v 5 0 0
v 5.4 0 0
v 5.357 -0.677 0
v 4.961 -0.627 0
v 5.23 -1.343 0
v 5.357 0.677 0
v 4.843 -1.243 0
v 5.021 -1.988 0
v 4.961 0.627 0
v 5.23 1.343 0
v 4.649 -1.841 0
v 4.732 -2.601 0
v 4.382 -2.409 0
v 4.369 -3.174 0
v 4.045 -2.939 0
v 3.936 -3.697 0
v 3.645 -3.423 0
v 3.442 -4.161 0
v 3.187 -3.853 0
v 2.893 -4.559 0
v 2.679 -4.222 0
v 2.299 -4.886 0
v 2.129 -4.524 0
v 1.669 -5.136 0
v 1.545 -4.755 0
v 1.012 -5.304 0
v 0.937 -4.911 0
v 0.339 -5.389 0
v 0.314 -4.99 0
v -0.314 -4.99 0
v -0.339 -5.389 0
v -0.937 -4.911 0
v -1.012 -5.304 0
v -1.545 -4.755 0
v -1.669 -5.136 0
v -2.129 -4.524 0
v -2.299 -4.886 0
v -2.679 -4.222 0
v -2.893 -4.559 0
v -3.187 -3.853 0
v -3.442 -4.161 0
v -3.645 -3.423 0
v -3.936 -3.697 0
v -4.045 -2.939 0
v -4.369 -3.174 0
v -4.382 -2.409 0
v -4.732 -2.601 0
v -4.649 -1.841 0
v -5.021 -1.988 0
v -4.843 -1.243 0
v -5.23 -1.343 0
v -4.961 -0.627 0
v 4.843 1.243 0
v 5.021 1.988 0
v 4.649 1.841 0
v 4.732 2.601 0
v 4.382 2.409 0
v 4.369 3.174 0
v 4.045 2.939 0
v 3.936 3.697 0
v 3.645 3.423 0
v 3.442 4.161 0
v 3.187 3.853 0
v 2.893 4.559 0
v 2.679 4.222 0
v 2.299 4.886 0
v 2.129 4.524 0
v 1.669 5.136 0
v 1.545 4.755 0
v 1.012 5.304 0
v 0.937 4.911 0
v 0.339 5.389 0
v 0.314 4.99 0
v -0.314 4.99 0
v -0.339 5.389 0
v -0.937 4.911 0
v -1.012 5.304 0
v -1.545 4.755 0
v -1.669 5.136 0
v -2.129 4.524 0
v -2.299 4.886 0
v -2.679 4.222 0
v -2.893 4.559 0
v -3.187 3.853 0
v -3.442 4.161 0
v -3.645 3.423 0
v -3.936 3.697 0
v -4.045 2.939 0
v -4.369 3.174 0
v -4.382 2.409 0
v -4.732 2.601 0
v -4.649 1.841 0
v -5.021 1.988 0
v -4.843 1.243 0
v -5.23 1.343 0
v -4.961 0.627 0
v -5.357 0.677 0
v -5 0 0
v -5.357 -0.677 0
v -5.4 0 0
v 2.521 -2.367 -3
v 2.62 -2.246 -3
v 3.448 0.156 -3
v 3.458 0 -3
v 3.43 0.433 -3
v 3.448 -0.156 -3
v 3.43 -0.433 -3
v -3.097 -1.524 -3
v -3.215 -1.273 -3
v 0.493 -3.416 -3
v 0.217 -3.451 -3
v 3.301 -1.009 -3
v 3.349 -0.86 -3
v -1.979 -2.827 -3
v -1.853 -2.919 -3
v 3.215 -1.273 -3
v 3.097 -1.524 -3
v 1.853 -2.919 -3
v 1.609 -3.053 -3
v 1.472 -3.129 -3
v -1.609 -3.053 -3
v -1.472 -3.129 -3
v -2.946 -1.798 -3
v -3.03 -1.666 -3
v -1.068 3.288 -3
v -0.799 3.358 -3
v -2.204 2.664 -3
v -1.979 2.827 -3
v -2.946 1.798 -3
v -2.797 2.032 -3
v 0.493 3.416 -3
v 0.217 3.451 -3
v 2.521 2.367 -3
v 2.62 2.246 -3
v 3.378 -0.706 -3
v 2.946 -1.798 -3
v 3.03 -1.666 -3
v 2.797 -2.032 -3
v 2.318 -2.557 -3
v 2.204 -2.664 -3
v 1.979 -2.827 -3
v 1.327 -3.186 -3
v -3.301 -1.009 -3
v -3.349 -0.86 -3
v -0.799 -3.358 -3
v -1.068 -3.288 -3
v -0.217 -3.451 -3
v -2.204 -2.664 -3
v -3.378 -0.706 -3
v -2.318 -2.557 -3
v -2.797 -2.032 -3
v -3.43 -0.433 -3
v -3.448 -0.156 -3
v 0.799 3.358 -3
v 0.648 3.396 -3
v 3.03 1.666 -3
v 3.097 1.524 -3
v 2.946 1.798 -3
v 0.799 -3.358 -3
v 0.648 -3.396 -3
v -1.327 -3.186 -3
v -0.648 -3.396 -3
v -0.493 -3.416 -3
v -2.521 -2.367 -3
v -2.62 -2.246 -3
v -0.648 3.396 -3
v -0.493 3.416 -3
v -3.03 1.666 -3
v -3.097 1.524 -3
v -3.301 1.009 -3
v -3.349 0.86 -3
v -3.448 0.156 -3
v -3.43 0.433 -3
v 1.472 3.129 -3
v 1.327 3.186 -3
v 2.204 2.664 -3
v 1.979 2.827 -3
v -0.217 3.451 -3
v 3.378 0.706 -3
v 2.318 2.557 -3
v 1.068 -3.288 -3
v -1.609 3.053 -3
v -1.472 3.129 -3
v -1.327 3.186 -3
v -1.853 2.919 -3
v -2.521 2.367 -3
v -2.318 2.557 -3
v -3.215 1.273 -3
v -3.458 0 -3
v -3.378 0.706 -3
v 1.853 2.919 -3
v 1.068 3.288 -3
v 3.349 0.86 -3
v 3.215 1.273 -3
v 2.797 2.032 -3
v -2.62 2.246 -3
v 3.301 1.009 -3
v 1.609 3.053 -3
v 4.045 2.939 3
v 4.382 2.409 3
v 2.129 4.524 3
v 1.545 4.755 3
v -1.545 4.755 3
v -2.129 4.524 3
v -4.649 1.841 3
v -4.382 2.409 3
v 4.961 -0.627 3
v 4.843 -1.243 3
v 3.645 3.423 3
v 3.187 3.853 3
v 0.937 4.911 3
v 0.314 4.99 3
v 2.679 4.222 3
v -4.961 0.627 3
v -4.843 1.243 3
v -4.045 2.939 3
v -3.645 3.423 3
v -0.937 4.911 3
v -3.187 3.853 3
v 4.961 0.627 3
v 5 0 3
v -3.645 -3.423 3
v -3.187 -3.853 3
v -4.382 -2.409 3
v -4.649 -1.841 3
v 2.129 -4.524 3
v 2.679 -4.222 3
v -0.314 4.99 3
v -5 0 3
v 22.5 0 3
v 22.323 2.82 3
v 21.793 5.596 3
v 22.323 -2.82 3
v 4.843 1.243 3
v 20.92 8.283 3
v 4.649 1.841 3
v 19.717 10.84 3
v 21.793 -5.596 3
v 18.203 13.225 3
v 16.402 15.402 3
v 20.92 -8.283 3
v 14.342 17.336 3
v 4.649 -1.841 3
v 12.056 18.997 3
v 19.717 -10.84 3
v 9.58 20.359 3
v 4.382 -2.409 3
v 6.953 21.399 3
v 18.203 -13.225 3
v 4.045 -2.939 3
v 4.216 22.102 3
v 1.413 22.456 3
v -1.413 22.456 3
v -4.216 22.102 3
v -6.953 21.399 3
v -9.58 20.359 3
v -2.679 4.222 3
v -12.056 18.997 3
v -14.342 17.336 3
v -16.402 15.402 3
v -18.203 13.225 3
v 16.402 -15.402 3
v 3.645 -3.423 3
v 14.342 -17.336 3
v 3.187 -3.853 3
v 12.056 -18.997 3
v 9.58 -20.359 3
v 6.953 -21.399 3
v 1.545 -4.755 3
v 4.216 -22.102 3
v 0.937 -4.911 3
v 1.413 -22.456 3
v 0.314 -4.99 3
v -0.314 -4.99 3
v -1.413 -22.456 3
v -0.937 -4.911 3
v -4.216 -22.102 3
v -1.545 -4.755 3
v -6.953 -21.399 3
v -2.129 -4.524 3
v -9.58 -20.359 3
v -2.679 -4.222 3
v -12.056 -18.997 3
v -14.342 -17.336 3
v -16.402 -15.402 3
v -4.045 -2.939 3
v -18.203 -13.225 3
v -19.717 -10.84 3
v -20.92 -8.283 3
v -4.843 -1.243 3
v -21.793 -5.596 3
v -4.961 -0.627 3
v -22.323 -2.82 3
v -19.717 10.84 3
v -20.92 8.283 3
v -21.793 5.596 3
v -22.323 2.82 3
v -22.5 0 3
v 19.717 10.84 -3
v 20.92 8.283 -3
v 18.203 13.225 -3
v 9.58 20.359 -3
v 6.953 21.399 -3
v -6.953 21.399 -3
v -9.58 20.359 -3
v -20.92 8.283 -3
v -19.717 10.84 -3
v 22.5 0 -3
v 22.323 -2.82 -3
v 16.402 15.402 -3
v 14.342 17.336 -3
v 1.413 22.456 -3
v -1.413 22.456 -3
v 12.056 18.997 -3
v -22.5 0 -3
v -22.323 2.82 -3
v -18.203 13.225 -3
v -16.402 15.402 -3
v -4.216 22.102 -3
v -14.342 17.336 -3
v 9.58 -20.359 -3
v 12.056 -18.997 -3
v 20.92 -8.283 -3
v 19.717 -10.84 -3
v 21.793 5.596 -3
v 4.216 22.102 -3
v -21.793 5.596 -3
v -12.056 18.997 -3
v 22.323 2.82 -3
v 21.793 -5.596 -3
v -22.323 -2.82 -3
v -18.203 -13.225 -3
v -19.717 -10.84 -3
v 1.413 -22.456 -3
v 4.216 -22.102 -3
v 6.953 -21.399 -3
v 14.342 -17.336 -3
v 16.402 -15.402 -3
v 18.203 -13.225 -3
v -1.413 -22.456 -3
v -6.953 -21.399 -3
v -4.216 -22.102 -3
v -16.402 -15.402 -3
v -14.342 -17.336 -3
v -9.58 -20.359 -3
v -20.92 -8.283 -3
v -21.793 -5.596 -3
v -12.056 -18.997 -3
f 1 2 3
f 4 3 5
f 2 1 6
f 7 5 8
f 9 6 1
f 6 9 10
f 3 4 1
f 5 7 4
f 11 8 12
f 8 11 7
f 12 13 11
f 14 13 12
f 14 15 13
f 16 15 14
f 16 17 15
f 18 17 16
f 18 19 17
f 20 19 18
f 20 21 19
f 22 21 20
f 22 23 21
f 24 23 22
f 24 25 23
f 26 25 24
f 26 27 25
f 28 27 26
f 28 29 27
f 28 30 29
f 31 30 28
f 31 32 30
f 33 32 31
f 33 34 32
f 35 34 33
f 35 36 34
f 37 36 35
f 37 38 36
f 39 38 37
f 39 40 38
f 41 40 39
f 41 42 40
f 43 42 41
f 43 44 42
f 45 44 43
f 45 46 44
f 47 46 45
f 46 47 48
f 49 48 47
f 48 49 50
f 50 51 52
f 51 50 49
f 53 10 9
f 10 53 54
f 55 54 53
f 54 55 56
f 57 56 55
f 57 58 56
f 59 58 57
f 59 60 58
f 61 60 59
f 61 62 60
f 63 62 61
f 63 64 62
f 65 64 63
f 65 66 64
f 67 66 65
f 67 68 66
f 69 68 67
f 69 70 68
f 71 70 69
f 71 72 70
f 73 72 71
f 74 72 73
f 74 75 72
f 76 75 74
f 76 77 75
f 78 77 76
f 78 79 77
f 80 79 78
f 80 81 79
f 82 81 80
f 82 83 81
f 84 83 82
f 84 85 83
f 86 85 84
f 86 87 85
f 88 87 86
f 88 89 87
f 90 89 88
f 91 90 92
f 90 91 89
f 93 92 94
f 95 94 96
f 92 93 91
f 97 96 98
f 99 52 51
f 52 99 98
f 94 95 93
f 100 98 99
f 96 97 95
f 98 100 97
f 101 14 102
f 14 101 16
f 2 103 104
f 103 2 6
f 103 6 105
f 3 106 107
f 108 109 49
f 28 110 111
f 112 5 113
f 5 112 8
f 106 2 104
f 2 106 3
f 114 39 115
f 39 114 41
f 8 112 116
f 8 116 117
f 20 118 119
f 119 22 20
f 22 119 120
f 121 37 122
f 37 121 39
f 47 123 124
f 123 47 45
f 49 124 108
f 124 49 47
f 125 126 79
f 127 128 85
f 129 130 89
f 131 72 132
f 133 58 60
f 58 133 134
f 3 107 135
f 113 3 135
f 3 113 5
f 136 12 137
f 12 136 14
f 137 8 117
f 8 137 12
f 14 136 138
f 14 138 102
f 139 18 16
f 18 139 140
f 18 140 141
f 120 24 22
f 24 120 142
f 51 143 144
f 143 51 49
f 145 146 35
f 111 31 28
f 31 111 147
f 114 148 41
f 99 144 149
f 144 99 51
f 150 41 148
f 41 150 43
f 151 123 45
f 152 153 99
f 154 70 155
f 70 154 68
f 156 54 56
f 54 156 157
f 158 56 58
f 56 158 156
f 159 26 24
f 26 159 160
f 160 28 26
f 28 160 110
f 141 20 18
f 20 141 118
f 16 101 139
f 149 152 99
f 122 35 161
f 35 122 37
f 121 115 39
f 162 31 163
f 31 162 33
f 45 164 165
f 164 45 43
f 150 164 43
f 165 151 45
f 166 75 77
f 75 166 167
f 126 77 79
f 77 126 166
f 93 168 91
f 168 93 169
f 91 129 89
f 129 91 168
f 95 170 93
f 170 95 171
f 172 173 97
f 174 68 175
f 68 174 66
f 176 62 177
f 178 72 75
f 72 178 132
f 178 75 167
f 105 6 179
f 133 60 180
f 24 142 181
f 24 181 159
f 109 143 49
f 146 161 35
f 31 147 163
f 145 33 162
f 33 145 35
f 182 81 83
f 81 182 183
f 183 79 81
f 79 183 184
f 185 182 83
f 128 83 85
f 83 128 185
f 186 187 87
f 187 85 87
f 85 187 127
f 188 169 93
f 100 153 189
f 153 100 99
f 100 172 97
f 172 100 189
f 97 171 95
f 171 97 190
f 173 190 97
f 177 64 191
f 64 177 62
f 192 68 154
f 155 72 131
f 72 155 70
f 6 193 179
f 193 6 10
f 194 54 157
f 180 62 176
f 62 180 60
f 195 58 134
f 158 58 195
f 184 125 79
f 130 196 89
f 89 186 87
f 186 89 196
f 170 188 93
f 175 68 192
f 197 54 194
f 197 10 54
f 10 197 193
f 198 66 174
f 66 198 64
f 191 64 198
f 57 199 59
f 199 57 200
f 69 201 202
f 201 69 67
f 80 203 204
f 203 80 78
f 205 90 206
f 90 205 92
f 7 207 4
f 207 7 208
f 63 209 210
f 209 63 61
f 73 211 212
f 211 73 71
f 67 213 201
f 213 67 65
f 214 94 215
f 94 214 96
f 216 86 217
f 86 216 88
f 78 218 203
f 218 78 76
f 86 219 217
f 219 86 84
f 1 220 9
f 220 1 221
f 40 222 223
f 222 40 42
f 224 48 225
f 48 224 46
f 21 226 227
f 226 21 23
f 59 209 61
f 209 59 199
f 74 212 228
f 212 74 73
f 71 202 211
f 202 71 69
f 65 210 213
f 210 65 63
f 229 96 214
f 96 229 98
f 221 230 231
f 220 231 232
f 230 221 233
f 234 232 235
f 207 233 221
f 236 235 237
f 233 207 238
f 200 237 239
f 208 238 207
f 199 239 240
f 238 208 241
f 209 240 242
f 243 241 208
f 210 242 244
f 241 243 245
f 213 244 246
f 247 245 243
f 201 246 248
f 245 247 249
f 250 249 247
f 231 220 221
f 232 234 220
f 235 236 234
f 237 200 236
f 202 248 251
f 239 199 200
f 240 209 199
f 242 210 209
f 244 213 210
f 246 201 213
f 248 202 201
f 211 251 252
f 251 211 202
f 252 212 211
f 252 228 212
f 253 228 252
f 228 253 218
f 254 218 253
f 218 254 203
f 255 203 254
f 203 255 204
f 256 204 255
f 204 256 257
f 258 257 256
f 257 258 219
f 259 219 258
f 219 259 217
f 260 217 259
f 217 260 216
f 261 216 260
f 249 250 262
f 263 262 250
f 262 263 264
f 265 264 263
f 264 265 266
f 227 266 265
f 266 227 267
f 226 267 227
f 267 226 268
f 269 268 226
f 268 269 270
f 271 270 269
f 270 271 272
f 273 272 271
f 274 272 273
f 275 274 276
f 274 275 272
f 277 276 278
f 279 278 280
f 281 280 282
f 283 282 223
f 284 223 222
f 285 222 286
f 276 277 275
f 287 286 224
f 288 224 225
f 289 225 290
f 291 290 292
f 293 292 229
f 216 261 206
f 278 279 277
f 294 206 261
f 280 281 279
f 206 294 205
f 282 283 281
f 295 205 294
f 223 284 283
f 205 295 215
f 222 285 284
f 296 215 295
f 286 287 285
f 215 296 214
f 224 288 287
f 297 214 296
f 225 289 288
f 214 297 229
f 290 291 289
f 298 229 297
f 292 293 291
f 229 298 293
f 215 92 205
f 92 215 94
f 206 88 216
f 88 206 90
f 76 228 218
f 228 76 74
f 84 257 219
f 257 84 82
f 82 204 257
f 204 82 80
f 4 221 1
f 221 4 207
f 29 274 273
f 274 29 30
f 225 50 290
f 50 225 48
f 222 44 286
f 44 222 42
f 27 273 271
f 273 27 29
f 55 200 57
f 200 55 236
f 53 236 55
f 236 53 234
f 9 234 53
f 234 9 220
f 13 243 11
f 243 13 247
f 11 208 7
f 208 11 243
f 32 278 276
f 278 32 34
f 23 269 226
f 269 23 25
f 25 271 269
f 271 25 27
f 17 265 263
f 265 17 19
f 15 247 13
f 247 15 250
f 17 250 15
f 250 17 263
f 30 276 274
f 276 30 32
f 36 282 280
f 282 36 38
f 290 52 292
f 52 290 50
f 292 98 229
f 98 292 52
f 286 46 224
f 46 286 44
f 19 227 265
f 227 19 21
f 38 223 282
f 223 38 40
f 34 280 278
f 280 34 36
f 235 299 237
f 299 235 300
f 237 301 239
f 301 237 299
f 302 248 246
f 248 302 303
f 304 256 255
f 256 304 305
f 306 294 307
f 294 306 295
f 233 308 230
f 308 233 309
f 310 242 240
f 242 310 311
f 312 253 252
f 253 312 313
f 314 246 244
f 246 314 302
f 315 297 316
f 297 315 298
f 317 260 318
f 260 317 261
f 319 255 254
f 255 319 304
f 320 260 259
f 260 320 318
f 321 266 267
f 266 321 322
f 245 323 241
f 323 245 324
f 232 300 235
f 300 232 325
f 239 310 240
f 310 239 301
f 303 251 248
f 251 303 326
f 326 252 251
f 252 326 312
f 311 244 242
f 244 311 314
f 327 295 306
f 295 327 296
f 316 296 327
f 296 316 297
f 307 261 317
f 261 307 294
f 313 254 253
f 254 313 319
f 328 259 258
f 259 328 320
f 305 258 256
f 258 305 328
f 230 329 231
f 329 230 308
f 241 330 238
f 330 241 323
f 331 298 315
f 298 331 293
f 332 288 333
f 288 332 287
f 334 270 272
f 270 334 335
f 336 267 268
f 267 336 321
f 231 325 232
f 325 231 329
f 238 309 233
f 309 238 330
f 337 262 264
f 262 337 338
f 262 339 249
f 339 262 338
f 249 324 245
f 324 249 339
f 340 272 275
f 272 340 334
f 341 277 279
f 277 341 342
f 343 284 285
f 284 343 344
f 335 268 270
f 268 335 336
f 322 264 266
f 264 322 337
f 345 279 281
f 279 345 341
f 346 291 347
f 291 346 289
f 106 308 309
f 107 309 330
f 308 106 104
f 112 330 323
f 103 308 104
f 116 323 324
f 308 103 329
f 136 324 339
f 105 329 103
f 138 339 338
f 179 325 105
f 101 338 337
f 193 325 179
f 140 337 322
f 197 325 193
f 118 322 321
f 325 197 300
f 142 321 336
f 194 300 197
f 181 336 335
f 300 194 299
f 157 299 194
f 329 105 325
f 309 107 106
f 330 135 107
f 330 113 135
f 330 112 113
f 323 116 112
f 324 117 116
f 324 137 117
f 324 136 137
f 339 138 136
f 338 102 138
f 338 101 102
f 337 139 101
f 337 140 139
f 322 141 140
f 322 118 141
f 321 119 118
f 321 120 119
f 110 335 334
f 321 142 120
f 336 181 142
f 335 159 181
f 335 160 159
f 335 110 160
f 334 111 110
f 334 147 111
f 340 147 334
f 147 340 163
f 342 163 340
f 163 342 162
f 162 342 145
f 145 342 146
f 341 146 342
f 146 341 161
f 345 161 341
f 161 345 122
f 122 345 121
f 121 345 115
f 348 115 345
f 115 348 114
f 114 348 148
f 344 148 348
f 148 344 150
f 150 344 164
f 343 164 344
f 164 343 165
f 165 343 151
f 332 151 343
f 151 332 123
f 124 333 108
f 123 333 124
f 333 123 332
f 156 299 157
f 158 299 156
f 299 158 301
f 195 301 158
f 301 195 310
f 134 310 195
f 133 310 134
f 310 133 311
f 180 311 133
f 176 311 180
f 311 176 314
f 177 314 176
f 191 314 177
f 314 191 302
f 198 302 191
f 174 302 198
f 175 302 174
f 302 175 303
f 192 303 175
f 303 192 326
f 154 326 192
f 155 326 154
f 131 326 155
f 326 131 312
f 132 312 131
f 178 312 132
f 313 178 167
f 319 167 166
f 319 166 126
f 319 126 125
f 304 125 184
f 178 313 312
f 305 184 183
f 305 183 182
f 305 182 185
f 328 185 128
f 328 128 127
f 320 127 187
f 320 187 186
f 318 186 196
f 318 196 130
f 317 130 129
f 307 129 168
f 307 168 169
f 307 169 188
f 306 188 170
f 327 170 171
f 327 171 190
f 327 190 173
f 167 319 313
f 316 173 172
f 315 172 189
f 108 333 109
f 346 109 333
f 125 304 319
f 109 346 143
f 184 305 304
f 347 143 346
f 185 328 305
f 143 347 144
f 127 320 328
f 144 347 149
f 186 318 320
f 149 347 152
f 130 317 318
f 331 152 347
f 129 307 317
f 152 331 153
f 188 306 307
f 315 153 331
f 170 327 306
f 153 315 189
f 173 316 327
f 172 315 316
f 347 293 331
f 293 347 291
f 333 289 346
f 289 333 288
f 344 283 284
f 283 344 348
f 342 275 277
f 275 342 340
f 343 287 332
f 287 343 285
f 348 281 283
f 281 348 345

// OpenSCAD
$fn = 50;


difference() {
	union() {
		translate(v = [0, 0, -3.0000000000]) {
			cylinder(h = 6, r = 22.5000000000);
		}
	}
	union() {
		translate(v = [0, 0, 0]) {
			rotate(a = [0, 0, 0]) {
				difference() {
					union() {
						translate(v = [0, 0, -6.0000000000]) {
							cylinder(h = 6, r = 2.6000000000);
						}
						translate(v = [0, 0, -3.9000000000]) {
							cylinder(h = 3.9000000000, r1 = 2.8750000000, r2 = 5.4000000000);
						}
						translate(v = [0, 0, -6.0000000000]) {
							cylinder(h = 6, r = 2.8750000000);
						}
						translate(v = [0, 0, -6.0000000000]) {
							cylinder(h = 6, r = 2.6000000000);
						}
					}
					union();
				}
			}
		}
		#cylinder(h = 3, r = 5.0000000000);
	}
}
